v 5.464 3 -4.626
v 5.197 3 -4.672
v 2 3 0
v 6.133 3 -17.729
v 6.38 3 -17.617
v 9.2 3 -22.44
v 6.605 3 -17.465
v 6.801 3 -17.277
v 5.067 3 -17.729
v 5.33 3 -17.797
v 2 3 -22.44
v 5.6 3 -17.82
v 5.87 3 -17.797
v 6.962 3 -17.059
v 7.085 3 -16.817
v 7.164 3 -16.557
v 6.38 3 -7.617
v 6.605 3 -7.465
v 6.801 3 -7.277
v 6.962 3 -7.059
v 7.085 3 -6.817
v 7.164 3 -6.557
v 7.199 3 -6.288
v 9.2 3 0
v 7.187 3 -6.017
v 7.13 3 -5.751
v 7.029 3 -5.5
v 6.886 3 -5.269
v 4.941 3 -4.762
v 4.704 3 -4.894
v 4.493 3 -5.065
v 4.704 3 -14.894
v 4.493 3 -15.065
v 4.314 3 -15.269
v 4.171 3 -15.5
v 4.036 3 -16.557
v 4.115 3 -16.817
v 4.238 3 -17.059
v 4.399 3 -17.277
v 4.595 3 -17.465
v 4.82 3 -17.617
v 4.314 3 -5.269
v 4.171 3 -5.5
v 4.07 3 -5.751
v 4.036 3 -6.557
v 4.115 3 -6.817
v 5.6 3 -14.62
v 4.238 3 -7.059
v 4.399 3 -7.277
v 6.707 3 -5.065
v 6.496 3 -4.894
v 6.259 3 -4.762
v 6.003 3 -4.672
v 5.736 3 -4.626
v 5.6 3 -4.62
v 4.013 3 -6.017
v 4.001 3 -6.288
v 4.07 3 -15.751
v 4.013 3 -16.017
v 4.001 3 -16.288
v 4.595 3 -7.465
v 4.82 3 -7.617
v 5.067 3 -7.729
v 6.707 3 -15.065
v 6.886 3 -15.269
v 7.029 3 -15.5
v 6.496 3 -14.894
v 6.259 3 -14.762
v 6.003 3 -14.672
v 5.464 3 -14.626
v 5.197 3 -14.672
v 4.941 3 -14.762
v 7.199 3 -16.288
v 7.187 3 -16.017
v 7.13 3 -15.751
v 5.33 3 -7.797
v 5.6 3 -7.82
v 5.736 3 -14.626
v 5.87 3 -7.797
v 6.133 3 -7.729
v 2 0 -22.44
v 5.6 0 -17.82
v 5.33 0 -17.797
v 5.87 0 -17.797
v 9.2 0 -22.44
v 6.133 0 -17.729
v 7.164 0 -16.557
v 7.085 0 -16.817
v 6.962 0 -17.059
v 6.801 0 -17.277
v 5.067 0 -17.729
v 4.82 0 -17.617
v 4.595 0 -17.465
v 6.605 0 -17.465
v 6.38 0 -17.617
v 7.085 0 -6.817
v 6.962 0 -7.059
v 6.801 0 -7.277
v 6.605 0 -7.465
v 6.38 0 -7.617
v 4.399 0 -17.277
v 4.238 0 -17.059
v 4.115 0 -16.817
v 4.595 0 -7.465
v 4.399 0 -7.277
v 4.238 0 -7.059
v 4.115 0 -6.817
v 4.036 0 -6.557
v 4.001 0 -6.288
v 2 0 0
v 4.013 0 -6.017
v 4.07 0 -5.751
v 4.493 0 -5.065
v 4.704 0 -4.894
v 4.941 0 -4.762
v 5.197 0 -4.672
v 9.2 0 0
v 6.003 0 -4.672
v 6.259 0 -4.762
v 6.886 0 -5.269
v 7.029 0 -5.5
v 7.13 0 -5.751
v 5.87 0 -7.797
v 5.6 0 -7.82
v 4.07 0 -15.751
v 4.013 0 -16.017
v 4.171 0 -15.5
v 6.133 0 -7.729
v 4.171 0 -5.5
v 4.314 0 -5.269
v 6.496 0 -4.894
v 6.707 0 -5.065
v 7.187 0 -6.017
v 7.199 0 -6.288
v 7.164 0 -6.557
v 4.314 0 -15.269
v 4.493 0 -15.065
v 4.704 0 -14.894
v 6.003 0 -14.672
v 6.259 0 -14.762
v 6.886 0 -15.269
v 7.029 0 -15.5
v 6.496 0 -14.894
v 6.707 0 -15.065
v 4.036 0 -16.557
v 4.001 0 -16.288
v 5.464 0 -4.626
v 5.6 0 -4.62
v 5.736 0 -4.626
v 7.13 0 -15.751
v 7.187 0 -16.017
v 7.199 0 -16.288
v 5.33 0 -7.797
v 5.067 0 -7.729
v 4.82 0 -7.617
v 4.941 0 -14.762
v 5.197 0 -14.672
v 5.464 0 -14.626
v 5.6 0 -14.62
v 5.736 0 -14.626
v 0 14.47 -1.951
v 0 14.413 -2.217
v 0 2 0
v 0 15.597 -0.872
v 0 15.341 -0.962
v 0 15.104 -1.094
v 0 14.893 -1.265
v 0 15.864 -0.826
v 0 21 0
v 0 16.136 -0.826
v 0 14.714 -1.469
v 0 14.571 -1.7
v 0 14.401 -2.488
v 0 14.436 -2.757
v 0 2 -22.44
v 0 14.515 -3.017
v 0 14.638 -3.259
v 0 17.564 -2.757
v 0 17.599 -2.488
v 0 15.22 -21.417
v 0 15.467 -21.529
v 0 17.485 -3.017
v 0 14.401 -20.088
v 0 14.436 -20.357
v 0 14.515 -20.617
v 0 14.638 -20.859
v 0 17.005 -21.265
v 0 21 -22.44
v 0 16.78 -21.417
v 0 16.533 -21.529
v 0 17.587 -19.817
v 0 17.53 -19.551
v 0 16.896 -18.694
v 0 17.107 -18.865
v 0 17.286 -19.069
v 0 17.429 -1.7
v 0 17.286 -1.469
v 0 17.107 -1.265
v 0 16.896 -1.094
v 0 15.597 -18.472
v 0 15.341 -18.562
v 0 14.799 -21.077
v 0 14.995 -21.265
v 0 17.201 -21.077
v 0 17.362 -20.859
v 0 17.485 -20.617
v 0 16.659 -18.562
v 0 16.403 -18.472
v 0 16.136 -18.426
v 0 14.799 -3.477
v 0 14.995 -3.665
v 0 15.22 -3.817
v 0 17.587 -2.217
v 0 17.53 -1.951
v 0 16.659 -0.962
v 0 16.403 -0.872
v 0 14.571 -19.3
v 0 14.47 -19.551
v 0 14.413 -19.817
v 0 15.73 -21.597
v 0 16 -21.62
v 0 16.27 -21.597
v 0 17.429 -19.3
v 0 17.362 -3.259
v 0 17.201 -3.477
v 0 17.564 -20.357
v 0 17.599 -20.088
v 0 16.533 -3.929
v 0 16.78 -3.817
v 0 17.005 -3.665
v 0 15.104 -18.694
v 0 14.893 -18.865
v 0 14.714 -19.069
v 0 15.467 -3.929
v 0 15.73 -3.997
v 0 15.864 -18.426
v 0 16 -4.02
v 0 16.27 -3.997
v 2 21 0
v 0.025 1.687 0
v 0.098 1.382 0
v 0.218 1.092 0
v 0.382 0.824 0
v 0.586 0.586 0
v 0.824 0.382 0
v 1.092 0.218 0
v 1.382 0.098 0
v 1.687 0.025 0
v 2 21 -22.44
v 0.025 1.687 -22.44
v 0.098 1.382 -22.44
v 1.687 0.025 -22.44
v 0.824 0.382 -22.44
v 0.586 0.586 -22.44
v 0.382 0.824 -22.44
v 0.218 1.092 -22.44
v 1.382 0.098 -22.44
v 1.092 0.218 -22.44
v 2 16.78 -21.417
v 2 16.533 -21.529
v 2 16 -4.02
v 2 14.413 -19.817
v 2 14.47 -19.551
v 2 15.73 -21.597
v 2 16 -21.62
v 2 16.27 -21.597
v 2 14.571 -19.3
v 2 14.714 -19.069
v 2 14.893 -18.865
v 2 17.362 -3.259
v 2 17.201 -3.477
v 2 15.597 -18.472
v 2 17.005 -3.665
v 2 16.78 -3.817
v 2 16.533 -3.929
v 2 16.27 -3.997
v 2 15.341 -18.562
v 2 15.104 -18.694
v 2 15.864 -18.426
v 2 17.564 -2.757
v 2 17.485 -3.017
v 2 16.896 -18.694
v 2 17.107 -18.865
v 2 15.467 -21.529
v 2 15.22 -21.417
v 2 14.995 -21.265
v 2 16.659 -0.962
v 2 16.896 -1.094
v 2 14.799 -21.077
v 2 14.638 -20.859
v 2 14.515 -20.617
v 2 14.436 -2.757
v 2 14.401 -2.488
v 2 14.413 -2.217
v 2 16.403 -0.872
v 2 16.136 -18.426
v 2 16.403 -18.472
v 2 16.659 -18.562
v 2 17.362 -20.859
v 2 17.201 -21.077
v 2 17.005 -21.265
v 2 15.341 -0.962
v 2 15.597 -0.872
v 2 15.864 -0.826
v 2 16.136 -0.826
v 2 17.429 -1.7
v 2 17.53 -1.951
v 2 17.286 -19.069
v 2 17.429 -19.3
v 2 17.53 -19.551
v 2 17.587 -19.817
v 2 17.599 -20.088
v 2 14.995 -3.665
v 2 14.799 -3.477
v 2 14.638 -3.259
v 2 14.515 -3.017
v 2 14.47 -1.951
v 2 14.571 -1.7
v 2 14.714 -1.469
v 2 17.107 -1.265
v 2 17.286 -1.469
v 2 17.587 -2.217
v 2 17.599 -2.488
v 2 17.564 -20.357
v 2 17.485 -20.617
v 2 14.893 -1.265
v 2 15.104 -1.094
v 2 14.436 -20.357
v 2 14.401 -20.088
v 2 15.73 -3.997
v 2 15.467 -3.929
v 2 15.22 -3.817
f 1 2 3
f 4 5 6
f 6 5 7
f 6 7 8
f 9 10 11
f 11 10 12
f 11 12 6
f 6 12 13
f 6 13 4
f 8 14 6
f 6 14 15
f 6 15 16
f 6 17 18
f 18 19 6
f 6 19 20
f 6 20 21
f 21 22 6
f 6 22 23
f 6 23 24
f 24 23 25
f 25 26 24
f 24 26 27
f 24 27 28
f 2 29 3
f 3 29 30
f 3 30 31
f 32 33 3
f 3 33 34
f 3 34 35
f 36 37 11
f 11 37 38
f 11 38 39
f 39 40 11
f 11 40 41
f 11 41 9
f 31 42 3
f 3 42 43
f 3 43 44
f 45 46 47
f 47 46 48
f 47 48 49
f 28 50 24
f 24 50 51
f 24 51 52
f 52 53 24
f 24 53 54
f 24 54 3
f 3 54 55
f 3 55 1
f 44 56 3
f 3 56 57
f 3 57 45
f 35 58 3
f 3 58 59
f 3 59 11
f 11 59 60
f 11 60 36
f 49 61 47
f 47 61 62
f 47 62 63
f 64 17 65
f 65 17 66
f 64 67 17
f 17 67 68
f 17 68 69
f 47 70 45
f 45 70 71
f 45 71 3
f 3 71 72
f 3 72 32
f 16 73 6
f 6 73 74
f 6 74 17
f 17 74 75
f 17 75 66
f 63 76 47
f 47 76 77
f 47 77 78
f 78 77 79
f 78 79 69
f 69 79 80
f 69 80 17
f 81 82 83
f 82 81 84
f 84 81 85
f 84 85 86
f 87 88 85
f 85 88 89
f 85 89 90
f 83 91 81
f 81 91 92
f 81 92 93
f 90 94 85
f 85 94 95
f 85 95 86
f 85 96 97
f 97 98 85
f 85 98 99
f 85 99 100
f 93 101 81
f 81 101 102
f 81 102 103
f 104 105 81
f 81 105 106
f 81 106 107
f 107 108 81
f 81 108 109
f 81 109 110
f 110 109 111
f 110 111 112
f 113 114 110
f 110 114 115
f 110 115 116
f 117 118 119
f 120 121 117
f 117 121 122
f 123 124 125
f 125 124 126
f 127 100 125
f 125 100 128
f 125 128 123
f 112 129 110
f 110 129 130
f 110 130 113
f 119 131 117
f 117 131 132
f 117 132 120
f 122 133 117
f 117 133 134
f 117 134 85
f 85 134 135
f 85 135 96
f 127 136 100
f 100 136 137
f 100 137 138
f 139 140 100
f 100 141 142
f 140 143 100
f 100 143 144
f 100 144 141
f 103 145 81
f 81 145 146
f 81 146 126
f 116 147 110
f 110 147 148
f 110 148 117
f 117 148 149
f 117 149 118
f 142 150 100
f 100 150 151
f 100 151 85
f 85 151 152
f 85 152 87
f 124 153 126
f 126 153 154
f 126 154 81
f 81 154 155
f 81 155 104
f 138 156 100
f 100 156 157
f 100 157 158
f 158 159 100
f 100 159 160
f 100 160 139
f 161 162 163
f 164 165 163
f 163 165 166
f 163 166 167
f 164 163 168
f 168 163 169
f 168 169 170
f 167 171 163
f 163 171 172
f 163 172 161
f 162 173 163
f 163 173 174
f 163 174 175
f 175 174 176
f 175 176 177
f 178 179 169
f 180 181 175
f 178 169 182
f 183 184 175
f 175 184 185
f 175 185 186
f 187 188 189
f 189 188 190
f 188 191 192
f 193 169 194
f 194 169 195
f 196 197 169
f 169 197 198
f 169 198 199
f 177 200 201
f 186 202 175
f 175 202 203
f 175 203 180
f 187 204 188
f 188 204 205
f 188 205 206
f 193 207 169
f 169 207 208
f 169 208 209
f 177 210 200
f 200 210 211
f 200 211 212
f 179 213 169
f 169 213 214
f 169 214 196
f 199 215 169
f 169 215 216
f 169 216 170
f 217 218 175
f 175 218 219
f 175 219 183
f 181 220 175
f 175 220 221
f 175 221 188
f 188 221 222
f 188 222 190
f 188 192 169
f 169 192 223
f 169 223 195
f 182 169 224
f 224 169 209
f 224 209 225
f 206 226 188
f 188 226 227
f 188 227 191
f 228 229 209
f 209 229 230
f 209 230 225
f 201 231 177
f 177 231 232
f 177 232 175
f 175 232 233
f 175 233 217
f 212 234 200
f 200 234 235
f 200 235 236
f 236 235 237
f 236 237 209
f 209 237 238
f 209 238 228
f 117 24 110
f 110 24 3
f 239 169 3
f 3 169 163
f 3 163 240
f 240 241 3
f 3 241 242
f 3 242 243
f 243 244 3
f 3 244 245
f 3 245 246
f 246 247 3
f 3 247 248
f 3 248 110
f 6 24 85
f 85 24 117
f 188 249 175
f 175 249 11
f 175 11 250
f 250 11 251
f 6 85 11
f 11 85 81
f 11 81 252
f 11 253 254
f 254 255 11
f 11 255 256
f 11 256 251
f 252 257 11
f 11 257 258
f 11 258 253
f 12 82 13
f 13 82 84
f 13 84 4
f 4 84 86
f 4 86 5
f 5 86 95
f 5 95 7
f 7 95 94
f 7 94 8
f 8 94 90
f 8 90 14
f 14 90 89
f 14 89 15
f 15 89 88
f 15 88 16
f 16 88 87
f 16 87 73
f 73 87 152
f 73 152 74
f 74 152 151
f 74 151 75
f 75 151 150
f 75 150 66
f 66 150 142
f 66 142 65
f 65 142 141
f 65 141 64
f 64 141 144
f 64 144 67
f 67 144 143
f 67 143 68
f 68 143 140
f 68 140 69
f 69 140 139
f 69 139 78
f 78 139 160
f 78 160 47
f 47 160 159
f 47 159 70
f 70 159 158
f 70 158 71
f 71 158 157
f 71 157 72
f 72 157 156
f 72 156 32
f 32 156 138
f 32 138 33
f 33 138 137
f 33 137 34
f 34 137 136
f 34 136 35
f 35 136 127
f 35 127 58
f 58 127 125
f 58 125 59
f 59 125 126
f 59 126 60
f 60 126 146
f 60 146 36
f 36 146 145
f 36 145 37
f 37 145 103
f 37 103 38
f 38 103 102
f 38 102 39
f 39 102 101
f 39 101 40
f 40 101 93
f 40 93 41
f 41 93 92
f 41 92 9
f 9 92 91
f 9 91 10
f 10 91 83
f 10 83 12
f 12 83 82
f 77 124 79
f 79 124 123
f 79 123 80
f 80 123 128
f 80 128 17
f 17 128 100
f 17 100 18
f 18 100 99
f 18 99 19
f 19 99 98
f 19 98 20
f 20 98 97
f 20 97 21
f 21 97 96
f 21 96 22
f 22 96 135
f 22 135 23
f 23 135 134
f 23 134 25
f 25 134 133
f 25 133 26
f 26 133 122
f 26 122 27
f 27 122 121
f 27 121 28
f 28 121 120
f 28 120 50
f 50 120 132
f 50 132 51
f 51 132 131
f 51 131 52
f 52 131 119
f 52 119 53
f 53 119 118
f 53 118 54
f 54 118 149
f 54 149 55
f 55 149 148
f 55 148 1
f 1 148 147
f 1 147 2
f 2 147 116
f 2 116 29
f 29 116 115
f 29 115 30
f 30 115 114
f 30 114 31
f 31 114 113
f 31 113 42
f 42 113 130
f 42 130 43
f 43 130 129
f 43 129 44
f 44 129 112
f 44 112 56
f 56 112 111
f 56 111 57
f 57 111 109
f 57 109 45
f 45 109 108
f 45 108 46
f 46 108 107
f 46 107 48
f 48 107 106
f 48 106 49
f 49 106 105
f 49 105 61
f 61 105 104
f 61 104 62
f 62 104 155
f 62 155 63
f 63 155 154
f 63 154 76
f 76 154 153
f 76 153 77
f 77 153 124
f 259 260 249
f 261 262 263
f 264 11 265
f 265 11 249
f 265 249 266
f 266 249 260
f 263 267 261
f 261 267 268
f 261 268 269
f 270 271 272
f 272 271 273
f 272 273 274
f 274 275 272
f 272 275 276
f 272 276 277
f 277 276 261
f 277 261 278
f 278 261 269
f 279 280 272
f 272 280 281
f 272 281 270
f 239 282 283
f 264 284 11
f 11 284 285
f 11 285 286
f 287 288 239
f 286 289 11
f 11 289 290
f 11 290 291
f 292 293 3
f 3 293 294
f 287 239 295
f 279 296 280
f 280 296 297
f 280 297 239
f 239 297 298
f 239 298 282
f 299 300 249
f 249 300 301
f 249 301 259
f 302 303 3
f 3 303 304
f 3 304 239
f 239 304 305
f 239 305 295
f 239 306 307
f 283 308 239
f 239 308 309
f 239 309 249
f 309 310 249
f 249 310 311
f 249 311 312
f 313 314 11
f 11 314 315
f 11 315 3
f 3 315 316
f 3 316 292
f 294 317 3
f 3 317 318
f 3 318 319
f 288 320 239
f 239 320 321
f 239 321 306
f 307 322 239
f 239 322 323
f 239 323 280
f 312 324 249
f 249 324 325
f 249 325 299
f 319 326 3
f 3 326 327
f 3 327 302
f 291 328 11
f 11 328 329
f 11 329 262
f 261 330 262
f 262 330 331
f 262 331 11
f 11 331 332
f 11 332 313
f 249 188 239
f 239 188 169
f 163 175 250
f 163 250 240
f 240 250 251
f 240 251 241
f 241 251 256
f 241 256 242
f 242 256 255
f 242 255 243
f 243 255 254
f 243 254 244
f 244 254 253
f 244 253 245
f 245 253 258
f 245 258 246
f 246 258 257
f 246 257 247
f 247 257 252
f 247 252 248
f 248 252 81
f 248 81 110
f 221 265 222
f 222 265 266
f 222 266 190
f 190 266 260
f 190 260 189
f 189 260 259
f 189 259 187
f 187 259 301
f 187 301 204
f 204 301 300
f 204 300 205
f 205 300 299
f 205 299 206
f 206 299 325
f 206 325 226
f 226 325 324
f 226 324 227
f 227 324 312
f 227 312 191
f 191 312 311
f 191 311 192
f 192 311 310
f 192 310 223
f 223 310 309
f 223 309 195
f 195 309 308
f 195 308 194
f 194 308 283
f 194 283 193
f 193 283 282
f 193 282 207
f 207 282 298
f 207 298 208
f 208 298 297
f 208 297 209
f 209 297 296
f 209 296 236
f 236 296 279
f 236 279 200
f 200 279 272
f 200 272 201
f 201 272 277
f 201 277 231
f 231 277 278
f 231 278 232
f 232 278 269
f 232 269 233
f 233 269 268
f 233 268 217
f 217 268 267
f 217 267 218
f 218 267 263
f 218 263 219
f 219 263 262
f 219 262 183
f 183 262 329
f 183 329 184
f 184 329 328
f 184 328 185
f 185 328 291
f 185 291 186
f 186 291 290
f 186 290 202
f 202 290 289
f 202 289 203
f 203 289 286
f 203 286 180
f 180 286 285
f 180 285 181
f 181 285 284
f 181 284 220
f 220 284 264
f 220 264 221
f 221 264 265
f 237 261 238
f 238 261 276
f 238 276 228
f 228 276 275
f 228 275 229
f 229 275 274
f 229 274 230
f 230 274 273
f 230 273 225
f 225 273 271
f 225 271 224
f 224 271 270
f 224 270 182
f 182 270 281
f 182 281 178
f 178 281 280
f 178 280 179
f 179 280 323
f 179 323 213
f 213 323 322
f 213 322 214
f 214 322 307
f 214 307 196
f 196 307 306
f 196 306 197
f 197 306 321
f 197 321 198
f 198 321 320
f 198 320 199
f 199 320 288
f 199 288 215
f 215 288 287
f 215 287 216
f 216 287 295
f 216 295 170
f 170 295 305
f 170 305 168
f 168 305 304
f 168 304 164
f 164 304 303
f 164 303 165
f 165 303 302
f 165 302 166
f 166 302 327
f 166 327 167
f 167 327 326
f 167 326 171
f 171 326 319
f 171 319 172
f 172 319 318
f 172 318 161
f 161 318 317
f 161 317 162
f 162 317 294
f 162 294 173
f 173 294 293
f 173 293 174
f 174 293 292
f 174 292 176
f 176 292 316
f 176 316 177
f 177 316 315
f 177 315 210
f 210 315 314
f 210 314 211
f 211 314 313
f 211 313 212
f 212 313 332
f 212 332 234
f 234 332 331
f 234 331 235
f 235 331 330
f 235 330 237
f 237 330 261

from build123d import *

# Parameters (mm, degrees)
SKETCH2_W           = 9.2
SKETCH2_H           = 22.44
SKETCH2_R           = 1.6
BOSS_EXTRUDE2_DEPTH = 3
SKETCH4_W           = 2
SKETCH4_H           = 22.44
BOSS_EXTRUDE3_DEPTH = 18
FILLET1_R           = 2
SKETCH5_R           = 1.6
CUT_EXTRUDE1_DEPTH  = 18


with BuildPart() as part:
    # Sketch2 → Boss-Extrude2 (new body)
    with BuildSketch(Plane(origin=(0, 0, 0), x_dir=(1, 0, 0), z_dir=(0, 1, 0))):
        with Locations((4.6, 11.22)):
            Rectangle(SKETCH2_W, SKETCH2_H)
        with Locations((5.6, 16.22)):
            Circle(SKETCH2_R, mode=Mode.SUBTRACT)
        with Locations((5.6, 6.22)):
            Circle(SKETCH2_R, mode=Mode.SUBTRACT)
    extrude(amount=BOSS_EXTRUDE2_DEPTH)

    # Sketch4 → Boss-Extrude3 (add)
    with BuildSketch(Plane(origin=(0, 3, 0), x_dir=(1, 0, 0), z_dir=(0, 1, 0))):
        with Locations((1, 11.22)):
            Rectangle(SKETCH4_W, SKETCH4_H)
    extrude(amount=BOSS_EXTRUDE3_DEPTH)

    # Fillet1
    fillet1_edges = [part.edges().sort_by_distance(p)[0] for p in [
        (0, 0, -11.22),
    ]]
    fillet(fillet1_edges, radius=FILLET1_R)

    # Sketch5 → Cut-Extrude1 (cut)
    with BuildSketch(Plane(origin=(2, 0, 0), x_dir=(0, 0, -1), z_dir=(1, 0, 0))):
        with Locations((2.42, 16)):
            Circle(SKETCH5_R)
        with Locations((20.02, 16)):
            Circle(SKETCH5_R)
    extrude(amount=-CUT_EXTRUDE1_DEPTH, mode=Mode.SUBTRACT)


solid = part.part
